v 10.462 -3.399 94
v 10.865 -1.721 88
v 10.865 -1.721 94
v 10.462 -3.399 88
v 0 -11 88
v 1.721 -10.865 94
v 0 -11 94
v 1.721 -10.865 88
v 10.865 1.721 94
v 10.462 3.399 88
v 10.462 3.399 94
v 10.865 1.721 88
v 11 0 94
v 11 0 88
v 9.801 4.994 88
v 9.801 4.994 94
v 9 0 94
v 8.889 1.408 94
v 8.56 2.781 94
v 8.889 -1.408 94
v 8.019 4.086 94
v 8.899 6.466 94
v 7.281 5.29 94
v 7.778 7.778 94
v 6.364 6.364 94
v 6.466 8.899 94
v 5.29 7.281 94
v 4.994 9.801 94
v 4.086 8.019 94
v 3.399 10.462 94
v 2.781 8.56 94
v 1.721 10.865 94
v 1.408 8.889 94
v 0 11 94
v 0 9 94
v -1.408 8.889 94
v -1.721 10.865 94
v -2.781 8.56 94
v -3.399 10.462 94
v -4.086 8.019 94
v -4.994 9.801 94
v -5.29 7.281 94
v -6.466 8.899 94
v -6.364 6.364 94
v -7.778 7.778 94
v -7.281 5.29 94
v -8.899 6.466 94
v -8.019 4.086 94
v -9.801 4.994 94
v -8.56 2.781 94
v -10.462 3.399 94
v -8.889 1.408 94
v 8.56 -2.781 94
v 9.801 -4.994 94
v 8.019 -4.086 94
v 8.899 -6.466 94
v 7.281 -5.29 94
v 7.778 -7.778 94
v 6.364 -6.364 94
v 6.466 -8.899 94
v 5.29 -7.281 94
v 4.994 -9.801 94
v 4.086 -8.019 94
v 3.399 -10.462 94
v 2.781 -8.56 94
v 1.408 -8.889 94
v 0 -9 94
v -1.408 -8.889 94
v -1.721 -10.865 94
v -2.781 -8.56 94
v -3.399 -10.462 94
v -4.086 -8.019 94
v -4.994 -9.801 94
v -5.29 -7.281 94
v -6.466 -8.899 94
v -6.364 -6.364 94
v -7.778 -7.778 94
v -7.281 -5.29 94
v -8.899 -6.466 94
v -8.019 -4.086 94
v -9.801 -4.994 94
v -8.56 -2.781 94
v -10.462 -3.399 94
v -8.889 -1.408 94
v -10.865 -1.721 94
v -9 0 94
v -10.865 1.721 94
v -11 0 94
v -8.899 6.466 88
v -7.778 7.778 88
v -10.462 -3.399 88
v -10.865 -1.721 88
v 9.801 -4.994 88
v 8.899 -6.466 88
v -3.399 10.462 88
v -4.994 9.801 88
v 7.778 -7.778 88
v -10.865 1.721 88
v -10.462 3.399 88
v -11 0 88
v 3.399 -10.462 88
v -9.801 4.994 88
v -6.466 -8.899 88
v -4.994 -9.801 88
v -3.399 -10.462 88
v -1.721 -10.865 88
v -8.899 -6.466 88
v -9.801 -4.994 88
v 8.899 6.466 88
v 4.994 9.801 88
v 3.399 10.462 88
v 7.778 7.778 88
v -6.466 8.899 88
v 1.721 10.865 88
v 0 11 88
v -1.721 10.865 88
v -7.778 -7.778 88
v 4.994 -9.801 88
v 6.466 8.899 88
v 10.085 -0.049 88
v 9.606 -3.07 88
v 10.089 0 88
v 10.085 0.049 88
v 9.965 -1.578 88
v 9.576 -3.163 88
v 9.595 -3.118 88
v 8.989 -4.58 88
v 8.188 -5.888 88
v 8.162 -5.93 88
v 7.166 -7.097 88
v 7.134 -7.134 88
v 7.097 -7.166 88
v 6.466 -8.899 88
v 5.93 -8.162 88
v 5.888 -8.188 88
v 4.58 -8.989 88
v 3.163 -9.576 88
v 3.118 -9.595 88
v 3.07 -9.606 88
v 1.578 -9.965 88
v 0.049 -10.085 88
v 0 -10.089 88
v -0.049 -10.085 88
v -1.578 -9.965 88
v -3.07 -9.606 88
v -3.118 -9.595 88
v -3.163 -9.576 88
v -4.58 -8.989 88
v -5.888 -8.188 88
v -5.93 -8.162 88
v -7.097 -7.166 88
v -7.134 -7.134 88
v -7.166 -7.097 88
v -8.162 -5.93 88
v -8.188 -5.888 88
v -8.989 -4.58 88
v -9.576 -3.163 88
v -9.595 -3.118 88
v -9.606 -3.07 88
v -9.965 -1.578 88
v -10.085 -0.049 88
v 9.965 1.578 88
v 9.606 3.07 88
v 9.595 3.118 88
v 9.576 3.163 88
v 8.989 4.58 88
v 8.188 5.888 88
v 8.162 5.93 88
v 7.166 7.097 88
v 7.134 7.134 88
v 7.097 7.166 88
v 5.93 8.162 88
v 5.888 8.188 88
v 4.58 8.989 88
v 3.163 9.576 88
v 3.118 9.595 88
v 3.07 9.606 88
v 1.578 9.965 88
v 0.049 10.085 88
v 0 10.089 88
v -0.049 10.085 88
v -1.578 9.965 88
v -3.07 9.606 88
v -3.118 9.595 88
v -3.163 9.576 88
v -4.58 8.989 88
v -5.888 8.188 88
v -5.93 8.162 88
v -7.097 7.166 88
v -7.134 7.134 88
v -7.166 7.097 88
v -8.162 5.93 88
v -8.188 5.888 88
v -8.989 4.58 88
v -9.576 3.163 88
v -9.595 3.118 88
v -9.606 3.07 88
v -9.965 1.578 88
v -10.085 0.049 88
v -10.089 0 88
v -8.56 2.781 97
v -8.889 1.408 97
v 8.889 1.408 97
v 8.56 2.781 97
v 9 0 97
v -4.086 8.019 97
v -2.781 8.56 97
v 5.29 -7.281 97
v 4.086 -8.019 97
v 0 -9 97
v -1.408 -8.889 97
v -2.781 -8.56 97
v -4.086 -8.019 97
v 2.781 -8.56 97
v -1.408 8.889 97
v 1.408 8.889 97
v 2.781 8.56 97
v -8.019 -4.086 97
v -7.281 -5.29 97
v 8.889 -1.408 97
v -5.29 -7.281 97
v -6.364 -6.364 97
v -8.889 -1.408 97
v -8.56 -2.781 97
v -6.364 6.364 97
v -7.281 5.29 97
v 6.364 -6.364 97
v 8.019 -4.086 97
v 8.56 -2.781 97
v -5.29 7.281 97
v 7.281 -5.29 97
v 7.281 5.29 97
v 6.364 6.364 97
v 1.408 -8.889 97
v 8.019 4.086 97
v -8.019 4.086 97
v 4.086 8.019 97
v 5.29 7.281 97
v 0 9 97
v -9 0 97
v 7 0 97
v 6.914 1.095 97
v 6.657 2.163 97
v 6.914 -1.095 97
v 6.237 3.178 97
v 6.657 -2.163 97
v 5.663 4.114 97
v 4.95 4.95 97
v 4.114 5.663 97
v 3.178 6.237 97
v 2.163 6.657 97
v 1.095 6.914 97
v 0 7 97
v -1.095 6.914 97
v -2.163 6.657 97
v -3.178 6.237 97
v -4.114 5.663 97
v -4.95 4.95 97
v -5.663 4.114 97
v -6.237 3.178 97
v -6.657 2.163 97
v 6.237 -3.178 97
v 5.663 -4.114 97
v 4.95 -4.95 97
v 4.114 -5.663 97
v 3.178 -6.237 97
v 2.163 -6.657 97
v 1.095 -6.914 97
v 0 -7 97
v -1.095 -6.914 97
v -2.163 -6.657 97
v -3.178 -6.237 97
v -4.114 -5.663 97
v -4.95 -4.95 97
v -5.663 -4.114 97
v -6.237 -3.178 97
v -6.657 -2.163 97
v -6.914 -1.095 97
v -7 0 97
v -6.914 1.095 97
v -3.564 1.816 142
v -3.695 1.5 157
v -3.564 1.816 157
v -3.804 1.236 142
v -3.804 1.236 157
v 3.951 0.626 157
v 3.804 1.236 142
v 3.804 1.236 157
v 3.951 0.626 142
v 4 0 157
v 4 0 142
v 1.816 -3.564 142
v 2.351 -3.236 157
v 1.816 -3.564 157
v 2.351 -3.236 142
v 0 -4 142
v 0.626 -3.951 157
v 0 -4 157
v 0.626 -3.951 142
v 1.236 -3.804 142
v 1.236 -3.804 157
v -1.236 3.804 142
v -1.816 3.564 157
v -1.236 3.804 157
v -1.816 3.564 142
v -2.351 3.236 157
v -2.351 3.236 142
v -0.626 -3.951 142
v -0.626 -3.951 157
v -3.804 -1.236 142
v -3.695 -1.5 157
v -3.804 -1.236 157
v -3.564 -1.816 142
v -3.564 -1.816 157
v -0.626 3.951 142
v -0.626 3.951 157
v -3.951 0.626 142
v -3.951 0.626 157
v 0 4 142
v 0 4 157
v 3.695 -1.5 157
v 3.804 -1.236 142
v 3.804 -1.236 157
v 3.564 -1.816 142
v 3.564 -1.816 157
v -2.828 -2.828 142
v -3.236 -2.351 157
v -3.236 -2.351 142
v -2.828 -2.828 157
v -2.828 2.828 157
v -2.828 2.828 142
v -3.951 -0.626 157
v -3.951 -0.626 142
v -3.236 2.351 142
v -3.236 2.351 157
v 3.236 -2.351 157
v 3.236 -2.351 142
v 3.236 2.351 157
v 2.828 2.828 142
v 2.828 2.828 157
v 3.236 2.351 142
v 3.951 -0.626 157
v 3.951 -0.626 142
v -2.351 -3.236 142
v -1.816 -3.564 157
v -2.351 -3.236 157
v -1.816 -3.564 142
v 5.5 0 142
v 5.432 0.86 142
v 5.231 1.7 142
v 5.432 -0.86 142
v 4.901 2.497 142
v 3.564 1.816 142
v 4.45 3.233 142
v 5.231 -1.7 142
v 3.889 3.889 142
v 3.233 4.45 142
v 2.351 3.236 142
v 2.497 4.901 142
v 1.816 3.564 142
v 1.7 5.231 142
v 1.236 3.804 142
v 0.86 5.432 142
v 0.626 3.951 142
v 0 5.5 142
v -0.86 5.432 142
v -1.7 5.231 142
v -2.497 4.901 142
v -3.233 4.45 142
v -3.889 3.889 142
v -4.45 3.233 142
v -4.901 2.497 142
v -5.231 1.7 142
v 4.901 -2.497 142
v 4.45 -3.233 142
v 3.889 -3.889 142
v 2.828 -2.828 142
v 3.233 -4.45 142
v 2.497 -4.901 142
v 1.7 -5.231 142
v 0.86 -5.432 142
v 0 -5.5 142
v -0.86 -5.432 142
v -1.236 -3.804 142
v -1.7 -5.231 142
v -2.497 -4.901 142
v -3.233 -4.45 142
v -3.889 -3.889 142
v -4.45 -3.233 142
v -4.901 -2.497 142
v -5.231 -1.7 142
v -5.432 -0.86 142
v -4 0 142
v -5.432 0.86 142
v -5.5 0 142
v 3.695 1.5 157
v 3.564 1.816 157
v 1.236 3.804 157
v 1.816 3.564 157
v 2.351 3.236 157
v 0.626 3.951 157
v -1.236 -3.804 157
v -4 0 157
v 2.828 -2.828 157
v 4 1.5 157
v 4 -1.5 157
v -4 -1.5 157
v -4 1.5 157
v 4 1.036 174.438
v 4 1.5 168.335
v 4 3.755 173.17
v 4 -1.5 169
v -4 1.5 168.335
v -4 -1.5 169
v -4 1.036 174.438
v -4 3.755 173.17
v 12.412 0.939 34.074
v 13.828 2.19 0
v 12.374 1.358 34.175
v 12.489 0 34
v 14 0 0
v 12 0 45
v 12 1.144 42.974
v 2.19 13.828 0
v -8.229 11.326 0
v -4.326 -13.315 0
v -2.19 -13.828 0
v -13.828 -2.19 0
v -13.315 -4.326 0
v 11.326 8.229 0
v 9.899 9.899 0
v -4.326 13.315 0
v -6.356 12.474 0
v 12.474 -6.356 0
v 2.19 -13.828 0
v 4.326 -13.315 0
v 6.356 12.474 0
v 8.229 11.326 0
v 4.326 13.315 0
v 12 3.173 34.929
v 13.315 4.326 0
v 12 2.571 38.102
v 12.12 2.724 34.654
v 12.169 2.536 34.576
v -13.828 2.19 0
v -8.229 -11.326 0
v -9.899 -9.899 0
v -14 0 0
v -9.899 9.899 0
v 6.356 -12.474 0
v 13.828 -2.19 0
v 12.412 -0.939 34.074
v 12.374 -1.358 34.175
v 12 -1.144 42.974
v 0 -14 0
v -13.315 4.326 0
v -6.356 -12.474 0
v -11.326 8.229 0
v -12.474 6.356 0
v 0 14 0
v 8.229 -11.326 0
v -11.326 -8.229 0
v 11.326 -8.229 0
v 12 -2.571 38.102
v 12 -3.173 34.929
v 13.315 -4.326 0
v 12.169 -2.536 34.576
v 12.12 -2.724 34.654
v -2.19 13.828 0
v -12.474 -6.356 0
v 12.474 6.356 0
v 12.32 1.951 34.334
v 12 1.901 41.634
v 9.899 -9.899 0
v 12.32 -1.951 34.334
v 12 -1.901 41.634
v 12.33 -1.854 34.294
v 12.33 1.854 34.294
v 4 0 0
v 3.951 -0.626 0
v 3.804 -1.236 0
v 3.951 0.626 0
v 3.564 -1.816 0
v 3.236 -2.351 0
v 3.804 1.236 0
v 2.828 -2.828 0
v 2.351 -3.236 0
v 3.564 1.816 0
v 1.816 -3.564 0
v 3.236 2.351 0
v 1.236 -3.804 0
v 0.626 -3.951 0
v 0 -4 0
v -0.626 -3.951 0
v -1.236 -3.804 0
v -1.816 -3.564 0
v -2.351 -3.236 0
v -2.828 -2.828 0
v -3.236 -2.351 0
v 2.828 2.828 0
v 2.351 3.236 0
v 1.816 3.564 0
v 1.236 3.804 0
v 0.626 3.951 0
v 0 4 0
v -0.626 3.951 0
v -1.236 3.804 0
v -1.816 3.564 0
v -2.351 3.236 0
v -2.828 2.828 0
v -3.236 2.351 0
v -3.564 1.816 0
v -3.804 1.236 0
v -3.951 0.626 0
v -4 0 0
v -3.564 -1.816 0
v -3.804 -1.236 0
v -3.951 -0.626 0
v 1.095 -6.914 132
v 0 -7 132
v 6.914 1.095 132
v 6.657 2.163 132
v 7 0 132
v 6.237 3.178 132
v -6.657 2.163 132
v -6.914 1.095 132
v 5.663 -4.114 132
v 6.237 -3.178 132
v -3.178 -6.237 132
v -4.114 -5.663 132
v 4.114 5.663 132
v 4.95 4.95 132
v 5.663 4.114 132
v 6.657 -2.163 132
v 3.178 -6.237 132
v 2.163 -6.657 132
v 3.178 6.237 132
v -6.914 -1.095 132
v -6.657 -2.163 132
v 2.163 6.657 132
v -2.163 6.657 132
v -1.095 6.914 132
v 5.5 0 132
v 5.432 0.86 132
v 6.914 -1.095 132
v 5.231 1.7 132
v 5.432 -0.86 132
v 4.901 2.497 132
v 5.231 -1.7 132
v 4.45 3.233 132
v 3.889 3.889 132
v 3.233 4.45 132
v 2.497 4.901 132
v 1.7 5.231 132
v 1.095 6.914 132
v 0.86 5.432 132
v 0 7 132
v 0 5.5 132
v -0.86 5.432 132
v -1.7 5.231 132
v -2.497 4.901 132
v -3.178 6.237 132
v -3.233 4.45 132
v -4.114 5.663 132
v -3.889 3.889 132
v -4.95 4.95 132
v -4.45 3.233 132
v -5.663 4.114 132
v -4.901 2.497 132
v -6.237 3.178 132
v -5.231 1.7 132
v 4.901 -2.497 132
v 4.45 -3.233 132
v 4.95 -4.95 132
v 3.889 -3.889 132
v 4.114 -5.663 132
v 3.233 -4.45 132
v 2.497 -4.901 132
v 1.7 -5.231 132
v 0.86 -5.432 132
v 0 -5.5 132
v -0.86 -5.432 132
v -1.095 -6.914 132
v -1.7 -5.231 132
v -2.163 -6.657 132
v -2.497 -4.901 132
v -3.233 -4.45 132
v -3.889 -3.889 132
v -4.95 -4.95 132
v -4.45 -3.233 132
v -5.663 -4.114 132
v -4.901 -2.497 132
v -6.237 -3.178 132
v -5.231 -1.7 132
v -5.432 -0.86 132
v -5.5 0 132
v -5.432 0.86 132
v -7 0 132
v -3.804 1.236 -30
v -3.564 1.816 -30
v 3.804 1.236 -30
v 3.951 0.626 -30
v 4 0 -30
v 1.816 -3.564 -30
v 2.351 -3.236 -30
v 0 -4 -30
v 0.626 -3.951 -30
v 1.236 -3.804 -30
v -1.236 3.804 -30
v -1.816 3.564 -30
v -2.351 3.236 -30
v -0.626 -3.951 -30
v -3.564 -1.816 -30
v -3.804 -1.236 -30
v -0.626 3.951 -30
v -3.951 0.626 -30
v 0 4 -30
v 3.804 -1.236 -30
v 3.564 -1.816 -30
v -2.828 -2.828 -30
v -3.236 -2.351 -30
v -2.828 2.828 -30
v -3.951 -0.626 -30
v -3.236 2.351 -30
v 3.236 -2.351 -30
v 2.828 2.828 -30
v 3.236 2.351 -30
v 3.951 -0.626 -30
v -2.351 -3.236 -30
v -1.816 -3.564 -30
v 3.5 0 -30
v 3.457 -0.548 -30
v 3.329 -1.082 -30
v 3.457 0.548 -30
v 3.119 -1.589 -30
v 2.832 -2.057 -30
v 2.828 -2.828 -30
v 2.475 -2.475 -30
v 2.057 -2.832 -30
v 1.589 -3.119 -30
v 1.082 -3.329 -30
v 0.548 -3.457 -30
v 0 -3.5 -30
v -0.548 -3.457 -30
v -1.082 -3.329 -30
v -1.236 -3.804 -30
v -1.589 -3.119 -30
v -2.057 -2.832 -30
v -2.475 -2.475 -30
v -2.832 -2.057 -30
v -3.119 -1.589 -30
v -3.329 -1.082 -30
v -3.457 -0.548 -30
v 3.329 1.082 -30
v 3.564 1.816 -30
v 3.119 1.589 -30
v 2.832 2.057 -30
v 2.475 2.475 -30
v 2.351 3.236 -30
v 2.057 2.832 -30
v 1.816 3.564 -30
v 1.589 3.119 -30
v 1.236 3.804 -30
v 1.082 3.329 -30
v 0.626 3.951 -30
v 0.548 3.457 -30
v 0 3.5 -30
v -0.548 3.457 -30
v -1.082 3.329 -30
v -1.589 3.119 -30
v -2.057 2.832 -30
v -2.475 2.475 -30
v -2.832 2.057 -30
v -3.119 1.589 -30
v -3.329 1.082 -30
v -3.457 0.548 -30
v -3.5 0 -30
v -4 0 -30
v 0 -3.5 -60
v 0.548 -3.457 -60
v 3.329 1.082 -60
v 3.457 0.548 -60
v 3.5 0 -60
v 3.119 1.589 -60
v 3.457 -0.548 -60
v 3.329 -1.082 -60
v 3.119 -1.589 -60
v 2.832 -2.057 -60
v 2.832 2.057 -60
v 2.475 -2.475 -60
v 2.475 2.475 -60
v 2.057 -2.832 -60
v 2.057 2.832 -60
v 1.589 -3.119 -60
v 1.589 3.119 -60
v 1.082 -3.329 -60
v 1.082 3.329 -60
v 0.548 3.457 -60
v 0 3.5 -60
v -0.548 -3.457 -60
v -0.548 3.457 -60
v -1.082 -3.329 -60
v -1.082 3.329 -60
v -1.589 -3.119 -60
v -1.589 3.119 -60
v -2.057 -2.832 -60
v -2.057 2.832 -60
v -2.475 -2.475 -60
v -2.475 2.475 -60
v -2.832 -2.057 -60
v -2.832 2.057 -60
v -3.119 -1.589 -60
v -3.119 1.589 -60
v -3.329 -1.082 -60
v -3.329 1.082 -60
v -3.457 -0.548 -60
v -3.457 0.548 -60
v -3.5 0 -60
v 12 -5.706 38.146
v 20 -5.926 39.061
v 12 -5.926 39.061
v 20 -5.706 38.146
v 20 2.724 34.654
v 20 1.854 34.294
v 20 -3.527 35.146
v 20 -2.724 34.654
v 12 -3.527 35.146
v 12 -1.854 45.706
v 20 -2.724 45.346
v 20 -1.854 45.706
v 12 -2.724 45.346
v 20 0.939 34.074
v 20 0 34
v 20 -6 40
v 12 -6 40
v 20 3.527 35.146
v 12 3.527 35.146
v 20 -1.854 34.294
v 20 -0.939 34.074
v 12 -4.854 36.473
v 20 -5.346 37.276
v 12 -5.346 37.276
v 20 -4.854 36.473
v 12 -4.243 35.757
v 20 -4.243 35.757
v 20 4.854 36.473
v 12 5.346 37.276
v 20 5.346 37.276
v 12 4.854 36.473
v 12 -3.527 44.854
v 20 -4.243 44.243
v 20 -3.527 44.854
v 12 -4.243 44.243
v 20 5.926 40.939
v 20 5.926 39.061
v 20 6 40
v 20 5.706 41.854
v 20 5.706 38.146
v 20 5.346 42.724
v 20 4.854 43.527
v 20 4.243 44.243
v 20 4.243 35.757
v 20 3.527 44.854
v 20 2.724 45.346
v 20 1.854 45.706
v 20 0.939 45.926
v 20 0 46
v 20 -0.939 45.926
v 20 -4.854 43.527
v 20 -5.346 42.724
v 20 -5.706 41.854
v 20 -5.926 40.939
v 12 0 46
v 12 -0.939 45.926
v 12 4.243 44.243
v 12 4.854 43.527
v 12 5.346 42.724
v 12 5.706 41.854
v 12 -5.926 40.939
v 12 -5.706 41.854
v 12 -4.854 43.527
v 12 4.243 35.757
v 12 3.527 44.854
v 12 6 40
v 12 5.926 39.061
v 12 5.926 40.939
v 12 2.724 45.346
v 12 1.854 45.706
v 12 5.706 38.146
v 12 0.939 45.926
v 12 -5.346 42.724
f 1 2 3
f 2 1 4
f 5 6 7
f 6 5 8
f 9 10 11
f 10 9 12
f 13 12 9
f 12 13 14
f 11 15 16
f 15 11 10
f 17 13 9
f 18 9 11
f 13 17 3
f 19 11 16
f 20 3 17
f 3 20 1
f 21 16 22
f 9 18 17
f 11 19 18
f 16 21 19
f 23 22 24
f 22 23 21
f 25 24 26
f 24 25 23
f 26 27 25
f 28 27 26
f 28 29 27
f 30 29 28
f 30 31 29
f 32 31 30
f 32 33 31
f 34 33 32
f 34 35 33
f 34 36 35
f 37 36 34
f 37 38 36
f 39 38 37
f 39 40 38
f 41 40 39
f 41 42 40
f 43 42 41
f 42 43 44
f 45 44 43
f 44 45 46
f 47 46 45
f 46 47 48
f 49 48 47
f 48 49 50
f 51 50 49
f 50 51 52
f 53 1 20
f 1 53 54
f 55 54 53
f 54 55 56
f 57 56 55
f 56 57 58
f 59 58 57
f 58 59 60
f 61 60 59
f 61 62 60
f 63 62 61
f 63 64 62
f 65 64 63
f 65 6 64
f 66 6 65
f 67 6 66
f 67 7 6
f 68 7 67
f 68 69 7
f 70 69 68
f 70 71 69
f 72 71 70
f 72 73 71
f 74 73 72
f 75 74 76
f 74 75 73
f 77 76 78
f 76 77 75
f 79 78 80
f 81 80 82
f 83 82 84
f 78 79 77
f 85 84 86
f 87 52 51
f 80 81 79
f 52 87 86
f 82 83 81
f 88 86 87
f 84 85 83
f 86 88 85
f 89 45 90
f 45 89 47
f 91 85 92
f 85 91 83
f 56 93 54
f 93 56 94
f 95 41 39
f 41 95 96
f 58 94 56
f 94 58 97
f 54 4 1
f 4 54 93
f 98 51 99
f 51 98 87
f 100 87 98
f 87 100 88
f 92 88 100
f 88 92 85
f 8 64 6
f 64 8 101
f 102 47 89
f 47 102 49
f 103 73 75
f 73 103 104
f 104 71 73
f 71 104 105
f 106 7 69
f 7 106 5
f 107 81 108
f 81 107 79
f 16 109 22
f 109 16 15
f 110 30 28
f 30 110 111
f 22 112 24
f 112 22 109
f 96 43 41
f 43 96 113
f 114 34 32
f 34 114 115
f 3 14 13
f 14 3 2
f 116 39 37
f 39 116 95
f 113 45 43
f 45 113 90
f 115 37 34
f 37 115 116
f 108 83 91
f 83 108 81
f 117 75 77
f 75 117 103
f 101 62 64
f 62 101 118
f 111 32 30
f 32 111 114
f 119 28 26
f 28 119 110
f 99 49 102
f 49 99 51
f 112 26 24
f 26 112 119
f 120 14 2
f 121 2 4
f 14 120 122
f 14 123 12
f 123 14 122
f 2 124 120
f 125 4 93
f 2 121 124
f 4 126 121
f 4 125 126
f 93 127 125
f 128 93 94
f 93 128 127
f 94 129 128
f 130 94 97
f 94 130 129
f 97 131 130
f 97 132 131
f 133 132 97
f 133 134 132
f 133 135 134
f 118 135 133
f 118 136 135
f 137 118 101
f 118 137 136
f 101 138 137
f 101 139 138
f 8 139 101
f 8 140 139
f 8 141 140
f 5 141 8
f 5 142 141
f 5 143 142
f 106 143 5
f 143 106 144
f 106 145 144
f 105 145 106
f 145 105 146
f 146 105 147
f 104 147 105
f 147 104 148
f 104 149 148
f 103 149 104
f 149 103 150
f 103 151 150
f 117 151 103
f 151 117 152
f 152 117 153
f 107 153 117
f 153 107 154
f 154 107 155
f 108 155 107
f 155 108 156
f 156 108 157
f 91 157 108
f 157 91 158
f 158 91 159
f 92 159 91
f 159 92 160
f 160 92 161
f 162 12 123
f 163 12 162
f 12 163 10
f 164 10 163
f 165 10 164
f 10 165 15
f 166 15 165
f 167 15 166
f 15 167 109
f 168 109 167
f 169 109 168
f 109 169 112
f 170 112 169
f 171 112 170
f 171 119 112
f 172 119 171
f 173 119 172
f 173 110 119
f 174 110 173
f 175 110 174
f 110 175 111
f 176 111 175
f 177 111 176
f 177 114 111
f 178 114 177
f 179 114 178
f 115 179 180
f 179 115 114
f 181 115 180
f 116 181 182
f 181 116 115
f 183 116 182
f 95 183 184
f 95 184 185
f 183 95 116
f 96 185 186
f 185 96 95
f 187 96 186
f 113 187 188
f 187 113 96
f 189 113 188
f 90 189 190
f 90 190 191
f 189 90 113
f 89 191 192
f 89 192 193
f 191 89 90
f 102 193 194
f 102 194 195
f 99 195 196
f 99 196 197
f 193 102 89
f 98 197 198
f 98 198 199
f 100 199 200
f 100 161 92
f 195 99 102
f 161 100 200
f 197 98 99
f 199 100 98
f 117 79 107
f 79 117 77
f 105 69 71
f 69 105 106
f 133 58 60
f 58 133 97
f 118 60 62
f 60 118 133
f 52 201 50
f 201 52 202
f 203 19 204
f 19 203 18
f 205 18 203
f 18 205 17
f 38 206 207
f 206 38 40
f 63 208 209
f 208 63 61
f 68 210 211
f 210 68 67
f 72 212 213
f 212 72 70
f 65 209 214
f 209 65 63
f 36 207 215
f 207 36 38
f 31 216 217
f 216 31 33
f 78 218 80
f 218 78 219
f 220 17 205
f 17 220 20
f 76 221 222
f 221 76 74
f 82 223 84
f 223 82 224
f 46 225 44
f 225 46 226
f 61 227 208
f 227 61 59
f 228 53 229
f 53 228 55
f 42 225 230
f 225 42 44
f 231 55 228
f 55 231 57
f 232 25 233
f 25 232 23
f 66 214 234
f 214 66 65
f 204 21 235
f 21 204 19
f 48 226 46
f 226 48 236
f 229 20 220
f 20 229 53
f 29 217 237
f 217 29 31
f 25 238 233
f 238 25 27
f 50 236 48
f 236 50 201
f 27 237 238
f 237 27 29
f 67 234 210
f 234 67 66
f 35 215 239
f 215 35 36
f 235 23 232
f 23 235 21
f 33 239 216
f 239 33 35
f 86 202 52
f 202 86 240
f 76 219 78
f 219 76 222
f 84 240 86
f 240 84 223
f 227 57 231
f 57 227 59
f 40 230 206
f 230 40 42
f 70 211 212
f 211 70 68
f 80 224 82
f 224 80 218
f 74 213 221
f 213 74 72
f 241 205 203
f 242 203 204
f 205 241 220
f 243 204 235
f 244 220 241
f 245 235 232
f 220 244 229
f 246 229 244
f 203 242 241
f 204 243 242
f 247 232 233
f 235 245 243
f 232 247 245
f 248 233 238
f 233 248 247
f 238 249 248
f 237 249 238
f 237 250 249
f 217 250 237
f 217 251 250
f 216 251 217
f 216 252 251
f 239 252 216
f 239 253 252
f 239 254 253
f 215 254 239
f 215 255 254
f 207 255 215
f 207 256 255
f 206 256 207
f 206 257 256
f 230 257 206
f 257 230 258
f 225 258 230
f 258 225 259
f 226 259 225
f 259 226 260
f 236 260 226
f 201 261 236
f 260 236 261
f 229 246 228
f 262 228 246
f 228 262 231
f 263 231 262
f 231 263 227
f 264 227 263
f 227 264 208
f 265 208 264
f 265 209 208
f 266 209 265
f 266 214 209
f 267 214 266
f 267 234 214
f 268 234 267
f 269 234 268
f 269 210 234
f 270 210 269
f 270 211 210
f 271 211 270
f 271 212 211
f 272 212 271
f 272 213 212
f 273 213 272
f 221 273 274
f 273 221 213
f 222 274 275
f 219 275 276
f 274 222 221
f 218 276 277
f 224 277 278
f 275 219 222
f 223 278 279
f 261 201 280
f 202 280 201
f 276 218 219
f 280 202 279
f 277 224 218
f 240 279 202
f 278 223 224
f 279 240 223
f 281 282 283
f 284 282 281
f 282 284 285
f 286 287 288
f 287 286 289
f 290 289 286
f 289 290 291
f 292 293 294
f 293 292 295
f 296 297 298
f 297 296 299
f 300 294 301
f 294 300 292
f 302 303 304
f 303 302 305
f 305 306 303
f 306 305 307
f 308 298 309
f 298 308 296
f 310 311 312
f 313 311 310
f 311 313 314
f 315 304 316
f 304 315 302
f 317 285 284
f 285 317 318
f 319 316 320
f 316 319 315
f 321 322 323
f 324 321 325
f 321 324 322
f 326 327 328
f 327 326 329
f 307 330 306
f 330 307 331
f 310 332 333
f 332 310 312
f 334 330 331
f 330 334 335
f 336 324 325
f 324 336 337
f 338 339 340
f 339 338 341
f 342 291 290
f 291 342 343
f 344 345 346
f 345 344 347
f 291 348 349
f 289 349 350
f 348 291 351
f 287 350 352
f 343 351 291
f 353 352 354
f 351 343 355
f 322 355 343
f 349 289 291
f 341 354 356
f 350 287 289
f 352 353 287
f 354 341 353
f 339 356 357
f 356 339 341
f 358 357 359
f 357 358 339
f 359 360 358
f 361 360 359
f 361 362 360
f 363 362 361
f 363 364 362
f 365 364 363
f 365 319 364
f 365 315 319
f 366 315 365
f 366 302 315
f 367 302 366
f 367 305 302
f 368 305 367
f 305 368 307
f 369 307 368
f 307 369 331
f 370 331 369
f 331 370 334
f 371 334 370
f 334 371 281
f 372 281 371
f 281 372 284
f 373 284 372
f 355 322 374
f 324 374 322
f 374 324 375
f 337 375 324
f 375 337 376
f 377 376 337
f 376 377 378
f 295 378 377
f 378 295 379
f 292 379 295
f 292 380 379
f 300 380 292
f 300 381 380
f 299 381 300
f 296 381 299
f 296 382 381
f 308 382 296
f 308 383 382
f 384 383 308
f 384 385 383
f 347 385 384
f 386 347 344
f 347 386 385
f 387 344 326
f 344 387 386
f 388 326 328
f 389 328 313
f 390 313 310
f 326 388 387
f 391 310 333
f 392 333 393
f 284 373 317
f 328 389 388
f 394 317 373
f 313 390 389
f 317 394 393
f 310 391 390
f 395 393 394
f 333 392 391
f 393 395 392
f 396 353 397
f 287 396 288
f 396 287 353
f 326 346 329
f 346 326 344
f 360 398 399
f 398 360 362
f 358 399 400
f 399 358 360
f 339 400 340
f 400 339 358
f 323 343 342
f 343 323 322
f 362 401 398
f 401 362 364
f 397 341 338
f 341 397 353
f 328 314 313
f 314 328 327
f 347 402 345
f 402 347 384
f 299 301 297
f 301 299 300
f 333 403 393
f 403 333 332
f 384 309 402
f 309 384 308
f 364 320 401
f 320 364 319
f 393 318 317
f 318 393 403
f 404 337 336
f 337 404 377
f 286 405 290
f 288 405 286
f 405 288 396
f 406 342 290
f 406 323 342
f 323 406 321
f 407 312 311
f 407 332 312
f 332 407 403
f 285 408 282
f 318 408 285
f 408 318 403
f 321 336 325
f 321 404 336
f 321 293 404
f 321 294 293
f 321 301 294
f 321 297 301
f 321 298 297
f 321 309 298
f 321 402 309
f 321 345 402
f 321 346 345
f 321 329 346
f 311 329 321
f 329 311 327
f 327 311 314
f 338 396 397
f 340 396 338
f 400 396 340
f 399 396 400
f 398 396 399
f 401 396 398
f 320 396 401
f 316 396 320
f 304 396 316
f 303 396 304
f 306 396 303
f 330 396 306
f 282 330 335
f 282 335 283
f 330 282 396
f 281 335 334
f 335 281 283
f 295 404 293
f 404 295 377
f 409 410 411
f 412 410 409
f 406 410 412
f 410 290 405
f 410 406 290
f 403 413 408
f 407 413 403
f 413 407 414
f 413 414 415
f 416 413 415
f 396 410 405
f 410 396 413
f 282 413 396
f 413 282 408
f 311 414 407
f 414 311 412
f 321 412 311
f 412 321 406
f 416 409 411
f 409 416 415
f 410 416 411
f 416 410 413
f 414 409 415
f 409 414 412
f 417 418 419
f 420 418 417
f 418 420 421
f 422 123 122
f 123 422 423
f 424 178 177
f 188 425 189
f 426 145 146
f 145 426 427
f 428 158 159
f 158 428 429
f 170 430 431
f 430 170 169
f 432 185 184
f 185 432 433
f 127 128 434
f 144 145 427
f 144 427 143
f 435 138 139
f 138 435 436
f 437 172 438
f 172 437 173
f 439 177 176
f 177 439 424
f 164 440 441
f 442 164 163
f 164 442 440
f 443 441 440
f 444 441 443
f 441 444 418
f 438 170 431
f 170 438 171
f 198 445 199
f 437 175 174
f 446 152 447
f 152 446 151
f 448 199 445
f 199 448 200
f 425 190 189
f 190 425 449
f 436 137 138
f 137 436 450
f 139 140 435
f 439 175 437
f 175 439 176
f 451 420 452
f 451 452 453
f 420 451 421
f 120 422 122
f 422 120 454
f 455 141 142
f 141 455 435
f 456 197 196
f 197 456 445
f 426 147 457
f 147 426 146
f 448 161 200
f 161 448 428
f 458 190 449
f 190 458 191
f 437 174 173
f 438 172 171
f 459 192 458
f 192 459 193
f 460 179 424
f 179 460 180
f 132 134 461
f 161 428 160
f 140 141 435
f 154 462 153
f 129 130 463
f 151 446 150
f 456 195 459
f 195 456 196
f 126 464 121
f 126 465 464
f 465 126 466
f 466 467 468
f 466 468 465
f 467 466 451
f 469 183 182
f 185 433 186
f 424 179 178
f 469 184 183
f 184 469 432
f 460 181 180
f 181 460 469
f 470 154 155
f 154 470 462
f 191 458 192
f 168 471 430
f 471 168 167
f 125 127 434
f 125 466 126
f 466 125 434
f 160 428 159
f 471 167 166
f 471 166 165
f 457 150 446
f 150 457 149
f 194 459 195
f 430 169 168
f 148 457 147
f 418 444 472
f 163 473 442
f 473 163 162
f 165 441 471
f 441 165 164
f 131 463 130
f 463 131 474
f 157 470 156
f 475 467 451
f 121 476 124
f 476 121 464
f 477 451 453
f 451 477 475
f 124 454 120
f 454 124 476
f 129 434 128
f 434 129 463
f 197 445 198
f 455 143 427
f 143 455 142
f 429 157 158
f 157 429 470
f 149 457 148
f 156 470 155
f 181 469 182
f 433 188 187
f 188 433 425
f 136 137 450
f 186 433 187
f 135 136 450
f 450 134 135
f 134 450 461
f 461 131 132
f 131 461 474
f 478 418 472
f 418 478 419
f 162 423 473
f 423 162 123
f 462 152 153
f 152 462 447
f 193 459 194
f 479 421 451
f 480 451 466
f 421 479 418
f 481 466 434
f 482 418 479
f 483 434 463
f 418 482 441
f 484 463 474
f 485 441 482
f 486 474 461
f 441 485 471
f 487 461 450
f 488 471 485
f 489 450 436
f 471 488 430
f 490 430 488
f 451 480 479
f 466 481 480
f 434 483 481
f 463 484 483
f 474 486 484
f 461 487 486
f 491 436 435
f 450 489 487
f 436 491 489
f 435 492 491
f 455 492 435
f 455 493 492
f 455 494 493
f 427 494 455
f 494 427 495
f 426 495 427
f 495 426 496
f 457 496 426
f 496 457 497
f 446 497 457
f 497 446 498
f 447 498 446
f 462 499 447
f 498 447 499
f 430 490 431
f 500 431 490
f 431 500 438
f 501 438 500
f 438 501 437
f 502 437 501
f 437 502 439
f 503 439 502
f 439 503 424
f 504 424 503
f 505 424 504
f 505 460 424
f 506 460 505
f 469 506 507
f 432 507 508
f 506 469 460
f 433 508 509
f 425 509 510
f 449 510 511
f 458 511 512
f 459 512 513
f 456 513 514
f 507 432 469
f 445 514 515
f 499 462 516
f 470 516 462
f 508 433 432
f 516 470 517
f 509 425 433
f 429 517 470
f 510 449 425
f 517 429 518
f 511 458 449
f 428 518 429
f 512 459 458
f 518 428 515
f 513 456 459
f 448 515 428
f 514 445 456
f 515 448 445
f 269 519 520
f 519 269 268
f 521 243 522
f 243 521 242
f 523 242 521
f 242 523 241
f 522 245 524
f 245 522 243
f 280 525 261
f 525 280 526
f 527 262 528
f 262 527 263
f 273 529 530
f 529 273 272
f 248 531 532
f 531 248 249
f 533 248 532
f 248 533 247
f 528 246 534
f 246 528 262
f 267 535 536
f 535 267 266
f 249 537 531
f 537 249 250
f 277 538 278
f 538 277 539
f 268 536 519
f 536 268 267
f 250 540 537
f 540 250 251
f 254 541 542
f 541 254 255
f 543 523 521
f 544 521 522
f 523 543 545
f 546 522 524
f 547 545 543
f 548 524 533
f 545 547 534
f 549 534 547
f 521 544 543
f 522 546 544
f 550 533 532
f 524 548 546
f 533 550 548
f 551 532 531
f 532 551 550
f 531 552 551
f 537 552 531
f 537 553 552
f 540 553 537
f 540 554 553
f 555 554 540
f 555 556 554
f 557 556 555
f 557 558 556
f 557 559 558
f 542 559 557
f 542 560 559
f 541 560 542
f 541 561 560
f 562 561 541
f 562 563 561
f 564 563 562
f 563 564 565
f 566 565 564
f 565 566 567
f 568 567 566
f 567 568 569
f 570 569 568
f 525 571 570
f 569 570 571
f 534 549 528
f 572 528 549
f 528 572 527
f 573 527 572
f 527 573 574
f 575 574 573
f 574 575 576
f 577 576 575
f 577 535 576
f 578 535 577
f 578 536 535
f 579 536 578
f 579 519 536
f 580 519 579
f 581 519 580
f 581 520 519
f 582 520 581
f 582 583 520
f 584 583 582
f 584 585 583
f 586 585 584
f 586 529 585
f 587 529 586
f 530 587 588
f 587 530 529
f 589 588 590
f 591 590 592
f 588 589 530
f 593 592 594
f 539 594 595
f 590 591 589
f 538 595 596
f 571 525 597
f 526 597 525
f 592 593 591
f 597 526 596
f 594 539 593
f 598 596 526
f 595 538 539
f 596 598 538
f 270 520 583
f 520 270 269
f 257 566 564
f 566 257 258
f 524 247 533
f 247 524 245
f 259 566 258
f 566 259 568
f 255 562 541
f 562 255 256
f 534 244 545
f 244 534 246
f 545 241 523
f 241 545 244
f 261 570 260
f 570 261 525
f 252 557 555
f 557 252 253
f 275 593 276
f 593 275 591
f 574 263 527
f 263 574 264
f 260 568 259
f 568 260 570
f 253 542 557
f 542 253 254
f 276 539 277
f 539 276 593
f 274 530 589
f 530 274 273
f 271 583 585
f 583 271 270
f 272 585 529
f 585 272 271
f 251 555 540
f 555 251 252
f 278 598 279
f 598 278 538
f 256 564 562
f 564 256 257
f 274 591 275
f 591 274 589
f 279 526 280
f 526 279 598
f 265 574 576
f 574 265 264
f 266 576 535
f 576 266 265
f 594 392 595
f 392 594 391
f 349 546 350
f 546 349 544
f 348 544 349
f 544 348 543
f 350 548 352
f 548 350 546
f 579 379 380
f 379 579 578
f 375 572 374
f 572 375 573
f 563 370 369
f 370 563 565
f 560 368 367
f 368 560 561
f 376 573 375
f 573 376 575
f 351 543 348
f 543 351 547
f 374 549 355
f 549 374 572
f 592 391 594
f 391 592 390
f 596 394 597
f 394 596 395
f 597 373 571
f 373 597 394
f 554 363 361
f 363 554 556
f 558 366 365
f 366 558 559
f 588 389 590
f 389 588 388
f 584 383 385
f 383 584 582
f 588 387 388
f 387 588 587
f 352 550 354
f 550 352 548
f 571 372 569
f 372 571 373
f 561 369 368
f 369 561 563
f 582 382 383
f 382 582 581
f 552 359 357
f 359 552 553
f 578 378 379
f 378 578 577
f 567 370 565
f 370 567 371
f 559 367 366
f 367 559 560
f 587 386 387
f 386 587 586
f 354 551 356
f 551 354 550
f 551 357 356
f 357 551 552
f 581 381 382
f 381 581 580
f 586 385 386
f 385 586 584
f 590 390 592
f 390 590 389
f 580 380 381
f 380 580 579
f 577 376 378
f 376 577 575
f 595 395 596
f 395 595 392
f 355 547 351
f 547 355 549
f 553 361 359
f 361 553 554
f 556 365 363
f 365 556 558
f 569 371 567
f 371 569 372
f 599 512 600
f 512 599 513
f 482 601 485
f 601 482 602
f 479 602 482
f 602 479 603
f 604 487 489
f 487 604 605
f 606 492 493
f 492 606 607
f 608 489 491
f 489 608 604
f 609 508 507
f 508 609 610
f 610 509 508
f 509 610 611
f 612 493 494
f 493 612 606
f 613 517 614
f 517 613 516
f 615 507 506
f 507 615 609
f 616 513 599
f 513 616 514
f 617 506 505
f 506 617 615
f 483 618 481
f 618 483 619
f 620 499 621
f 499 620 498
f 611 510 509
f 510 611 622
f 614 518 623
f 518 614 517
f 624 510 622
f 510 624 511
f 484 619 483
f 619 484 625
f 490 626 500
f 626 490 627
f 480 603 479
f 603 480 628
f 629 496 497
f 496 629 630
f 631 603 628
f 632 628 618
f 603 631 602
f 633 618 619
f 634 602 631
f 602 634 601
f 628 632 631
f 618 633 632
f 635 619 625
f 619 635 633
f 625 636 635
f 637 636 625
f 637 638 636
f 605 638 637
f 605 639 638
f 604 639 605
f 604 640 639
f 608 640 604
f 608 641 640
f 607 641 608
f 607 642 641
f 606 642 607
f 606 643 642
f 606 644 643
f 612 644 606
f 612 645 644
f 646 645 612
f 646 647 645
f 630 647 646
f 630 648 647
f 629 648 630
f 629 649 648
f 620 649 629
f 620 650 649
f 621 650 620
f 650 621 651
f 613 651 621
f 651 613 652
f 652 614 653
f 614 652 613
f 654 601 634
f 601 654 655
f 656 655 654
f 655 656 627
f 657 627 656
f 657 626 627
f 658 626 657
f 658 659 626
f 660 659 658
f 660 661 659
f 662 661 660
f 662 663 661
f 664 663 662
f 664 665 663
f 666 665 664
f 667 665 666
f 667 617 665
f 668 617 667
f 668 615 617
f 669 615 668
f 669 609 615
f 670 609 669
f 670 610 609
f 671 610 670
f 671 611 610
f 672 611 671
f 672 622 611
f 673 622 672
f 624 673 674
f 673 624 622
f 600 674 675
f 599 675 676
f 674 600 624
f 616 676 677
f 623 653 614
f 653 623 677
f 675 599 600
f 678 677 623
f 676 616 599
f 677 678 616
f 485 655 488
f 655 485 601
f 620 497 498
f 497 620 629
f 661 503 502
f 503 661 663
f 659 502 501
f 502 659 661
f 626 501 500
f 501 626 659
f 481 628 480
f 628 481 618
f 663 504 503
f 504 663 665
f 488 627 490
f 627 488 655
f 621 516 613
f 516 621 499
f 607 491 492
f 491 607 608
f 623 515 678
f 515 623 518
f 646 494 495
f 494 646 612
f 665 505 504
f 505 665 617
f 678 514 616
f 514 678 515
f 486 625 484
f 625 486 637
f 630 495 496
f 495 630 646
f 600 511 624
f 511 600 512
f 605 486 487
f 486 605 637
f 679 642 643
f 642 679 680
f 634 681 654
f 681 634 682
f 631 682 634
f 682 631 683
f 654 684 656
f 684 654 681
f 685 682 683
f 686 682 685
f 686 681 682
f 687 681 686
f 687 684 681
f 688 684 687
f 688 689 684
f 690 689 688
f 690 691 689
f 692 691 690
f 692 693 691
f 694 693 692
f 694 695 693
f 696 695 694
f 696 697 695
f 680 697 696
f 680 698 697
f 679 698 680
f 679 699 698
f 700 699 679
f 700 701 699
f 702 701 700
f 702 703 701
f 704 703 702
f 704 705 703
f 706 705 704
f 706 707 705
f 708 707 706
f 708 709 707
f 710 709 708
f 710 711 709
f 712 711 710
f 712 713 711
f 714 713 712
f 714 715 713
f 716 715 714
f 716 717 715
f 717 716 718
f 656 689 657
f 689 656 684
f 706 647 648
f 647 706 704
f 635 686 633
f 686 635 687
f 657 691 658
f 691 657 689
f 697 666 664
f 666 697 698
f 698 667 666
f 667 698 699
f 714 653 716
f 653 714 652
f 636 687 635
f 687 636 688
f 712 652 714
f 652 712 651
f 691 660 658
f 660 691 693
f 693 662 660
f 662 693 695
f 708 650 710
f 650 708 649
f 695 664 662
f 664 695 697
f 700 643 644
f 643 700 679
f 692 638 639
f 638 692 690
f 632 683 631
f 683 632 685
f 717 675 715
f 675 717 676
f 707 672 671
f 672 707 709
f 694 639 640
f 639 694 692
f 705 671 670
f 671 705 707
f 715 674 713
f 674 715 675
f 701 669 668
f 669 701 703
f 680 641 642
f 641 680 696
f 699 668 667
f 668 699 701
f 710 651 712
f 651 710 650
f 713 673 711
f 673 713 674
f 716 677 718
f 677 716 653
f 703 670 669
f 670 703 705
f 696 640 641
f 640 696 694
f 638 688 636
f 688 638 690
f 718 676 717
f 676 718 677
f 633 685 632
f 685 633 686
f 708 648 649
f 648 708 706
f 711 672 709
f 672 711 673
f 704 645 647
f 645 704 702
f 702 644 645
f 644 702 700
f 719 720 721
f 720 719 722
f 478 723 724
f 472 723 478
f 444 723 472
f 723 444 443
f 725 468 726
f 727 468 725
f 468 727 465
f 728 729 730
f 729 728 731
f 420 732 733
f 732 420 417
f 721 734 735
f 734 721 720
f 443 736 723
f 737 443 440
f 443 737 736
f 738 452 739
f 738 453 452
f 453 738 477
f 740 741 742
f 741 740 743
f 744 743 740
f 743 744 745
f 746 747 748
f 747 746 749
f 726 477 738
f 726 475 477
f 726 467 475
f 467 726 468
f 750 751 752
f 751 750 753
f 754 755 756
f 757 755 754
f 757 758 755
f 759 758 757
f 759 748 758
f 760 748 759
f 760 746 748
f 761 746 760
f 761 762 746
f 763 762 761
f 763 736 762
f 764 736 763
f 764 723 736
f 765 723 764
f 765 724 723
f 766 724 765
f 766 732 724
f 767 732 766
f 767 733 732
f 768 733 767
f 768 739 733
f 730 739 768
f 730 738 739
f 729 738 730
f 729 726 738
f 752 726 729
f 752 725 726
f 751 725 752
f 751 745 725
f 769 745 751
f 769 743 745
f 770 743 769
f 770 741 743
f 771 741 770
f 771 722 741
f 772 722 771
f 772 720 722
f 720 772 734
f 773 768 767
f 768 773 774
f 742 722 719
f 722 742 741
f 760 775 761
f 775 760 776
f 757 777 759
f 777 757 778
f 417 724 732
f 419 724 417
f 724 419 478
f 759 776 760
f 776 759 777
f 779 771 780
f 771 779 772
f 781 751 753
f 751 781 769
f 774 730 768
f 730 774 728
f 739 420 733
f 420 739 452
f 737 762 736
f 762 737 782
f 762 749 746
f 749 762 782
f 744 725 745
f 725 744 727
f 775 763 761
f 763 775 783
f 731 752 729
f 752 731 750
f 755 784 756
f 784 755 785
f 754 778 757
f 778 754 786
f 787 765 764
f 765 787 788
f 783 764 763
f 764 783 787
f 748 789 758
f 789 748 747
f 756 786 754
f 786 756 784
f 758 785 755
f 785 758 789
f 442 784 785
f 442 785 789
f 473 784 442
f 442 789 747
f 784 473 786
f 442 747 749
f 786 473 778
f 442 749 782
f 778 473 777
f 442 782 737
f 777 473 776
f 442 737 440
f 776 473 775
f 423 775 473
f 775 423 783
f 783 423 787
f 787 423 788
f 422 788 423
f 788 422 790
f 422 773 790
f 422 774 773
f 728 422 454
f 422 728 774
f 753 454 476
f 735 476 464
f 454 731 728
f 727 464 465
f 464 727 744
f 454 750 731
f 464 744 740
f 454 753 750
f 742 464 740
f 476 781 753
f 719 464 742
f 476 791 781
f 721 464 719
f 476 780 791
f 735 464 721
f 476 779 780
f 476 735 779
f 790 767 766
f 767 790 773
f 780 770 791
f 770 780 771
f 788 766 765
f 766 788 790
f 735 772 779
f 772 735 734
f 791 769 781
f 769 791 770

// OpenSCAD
// 電烙鐵 Soldering Iron — 握把 + 加熱芯 + 烙鐵頭
$fn = 40;

// 握把（藍色塑膠）
color([0.12, 0.30, 0.68])
  cylinder(h = 90, r1 = 14, r2 = 10);

// 防滑紋
color([0.08, 0.20, 0.52])
  for (z = [10, 20, 30, 40, 50, 60, 70])
    translate([0, 0, z]) difference() {
      cylinder(h = 5, r = 10.5);
      translate([0, 0, -1]) cylinder(h = 7, r = 9);
    }

// 握把前端蓋（金屬環）
color([0.65, 0.65, 0.68]) {
  translate([0, 0, 88]) cylinder(h = 6, r = 11);
  translate([0, 0, 93]) cylinder(h = 4, r = 9);
}

// 加熱元件殼（銀灰）
color([0.72, 0.73, 0.75])
  translate([0, 0, 97]) cylinder(h = 35, r = 7);

// 加熱套筒（黑色陶瓷）
color([0.18, 0.18, 0.20])
  translate([0, 0, 130]) cylinder(h = 12, r = 5.5);

// 烙鐵頭（銅色，刀形）
color([0.75, 0.50, 0.18]) {
  translate([0, 0, 142]) cylinder(h = 15, r = 4);
  translate([-4, -1.5, 157]) cube([8, 3, 12]);
  // 刀口斜面
  translate([-4, -1.5, 169]) rotate([-25, 0, 0]) cube([8, 3, 6]);
}

// 電源線（從底部引出）
color([0.12, 0.12, 0.14])
  translate([0, 0, -30]) cylinder(h = 32, r = 4);
color([0.08, 0.08, 0.10])
  translate([0, 0, -60]) cylinder(h = 32, r = 3.5);

// 溫度調節旋鈕（握把側面）
color([0.85, 0.85, 0.88])
  translate([12, 0, 40]) rotate([0, 90, 0]) cylinder(h = 8, r = 6);
